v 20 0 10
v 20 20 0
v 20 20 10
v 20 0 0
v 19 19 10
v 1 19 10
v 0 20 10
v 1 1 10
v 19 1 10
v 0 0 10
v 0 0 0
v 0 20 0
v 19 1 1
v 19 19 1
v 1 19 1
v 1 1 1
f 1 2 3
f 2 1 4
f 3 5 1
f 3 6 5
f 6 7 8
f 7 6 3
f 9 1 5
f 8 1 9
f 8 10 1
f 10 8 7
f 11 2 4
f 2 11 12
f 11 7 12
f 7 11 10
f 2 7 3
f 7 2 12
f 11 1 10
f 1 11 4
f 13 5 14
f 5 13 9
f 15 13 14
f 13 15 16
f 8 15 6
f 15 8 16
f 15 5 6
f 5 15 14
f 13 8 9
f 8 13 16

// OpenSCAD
module model()
{
    // outside x [mm]
    width = 20;  // [10:0.1:180]
    // outside y [mm]
    length = 20; // [10:0.1:180]
    // outside z [mm]
    height = 10; // [10:0.1:180]

    // wall thickness [mm]
    wall = 1; // [0.5:0.1:5]

    difference() {
        cube([width, length, height]);
        translate([wall, wall, wall])
            cube([width - wall * 2, length - wall * 2, height - wall]);
    }
}

model();
